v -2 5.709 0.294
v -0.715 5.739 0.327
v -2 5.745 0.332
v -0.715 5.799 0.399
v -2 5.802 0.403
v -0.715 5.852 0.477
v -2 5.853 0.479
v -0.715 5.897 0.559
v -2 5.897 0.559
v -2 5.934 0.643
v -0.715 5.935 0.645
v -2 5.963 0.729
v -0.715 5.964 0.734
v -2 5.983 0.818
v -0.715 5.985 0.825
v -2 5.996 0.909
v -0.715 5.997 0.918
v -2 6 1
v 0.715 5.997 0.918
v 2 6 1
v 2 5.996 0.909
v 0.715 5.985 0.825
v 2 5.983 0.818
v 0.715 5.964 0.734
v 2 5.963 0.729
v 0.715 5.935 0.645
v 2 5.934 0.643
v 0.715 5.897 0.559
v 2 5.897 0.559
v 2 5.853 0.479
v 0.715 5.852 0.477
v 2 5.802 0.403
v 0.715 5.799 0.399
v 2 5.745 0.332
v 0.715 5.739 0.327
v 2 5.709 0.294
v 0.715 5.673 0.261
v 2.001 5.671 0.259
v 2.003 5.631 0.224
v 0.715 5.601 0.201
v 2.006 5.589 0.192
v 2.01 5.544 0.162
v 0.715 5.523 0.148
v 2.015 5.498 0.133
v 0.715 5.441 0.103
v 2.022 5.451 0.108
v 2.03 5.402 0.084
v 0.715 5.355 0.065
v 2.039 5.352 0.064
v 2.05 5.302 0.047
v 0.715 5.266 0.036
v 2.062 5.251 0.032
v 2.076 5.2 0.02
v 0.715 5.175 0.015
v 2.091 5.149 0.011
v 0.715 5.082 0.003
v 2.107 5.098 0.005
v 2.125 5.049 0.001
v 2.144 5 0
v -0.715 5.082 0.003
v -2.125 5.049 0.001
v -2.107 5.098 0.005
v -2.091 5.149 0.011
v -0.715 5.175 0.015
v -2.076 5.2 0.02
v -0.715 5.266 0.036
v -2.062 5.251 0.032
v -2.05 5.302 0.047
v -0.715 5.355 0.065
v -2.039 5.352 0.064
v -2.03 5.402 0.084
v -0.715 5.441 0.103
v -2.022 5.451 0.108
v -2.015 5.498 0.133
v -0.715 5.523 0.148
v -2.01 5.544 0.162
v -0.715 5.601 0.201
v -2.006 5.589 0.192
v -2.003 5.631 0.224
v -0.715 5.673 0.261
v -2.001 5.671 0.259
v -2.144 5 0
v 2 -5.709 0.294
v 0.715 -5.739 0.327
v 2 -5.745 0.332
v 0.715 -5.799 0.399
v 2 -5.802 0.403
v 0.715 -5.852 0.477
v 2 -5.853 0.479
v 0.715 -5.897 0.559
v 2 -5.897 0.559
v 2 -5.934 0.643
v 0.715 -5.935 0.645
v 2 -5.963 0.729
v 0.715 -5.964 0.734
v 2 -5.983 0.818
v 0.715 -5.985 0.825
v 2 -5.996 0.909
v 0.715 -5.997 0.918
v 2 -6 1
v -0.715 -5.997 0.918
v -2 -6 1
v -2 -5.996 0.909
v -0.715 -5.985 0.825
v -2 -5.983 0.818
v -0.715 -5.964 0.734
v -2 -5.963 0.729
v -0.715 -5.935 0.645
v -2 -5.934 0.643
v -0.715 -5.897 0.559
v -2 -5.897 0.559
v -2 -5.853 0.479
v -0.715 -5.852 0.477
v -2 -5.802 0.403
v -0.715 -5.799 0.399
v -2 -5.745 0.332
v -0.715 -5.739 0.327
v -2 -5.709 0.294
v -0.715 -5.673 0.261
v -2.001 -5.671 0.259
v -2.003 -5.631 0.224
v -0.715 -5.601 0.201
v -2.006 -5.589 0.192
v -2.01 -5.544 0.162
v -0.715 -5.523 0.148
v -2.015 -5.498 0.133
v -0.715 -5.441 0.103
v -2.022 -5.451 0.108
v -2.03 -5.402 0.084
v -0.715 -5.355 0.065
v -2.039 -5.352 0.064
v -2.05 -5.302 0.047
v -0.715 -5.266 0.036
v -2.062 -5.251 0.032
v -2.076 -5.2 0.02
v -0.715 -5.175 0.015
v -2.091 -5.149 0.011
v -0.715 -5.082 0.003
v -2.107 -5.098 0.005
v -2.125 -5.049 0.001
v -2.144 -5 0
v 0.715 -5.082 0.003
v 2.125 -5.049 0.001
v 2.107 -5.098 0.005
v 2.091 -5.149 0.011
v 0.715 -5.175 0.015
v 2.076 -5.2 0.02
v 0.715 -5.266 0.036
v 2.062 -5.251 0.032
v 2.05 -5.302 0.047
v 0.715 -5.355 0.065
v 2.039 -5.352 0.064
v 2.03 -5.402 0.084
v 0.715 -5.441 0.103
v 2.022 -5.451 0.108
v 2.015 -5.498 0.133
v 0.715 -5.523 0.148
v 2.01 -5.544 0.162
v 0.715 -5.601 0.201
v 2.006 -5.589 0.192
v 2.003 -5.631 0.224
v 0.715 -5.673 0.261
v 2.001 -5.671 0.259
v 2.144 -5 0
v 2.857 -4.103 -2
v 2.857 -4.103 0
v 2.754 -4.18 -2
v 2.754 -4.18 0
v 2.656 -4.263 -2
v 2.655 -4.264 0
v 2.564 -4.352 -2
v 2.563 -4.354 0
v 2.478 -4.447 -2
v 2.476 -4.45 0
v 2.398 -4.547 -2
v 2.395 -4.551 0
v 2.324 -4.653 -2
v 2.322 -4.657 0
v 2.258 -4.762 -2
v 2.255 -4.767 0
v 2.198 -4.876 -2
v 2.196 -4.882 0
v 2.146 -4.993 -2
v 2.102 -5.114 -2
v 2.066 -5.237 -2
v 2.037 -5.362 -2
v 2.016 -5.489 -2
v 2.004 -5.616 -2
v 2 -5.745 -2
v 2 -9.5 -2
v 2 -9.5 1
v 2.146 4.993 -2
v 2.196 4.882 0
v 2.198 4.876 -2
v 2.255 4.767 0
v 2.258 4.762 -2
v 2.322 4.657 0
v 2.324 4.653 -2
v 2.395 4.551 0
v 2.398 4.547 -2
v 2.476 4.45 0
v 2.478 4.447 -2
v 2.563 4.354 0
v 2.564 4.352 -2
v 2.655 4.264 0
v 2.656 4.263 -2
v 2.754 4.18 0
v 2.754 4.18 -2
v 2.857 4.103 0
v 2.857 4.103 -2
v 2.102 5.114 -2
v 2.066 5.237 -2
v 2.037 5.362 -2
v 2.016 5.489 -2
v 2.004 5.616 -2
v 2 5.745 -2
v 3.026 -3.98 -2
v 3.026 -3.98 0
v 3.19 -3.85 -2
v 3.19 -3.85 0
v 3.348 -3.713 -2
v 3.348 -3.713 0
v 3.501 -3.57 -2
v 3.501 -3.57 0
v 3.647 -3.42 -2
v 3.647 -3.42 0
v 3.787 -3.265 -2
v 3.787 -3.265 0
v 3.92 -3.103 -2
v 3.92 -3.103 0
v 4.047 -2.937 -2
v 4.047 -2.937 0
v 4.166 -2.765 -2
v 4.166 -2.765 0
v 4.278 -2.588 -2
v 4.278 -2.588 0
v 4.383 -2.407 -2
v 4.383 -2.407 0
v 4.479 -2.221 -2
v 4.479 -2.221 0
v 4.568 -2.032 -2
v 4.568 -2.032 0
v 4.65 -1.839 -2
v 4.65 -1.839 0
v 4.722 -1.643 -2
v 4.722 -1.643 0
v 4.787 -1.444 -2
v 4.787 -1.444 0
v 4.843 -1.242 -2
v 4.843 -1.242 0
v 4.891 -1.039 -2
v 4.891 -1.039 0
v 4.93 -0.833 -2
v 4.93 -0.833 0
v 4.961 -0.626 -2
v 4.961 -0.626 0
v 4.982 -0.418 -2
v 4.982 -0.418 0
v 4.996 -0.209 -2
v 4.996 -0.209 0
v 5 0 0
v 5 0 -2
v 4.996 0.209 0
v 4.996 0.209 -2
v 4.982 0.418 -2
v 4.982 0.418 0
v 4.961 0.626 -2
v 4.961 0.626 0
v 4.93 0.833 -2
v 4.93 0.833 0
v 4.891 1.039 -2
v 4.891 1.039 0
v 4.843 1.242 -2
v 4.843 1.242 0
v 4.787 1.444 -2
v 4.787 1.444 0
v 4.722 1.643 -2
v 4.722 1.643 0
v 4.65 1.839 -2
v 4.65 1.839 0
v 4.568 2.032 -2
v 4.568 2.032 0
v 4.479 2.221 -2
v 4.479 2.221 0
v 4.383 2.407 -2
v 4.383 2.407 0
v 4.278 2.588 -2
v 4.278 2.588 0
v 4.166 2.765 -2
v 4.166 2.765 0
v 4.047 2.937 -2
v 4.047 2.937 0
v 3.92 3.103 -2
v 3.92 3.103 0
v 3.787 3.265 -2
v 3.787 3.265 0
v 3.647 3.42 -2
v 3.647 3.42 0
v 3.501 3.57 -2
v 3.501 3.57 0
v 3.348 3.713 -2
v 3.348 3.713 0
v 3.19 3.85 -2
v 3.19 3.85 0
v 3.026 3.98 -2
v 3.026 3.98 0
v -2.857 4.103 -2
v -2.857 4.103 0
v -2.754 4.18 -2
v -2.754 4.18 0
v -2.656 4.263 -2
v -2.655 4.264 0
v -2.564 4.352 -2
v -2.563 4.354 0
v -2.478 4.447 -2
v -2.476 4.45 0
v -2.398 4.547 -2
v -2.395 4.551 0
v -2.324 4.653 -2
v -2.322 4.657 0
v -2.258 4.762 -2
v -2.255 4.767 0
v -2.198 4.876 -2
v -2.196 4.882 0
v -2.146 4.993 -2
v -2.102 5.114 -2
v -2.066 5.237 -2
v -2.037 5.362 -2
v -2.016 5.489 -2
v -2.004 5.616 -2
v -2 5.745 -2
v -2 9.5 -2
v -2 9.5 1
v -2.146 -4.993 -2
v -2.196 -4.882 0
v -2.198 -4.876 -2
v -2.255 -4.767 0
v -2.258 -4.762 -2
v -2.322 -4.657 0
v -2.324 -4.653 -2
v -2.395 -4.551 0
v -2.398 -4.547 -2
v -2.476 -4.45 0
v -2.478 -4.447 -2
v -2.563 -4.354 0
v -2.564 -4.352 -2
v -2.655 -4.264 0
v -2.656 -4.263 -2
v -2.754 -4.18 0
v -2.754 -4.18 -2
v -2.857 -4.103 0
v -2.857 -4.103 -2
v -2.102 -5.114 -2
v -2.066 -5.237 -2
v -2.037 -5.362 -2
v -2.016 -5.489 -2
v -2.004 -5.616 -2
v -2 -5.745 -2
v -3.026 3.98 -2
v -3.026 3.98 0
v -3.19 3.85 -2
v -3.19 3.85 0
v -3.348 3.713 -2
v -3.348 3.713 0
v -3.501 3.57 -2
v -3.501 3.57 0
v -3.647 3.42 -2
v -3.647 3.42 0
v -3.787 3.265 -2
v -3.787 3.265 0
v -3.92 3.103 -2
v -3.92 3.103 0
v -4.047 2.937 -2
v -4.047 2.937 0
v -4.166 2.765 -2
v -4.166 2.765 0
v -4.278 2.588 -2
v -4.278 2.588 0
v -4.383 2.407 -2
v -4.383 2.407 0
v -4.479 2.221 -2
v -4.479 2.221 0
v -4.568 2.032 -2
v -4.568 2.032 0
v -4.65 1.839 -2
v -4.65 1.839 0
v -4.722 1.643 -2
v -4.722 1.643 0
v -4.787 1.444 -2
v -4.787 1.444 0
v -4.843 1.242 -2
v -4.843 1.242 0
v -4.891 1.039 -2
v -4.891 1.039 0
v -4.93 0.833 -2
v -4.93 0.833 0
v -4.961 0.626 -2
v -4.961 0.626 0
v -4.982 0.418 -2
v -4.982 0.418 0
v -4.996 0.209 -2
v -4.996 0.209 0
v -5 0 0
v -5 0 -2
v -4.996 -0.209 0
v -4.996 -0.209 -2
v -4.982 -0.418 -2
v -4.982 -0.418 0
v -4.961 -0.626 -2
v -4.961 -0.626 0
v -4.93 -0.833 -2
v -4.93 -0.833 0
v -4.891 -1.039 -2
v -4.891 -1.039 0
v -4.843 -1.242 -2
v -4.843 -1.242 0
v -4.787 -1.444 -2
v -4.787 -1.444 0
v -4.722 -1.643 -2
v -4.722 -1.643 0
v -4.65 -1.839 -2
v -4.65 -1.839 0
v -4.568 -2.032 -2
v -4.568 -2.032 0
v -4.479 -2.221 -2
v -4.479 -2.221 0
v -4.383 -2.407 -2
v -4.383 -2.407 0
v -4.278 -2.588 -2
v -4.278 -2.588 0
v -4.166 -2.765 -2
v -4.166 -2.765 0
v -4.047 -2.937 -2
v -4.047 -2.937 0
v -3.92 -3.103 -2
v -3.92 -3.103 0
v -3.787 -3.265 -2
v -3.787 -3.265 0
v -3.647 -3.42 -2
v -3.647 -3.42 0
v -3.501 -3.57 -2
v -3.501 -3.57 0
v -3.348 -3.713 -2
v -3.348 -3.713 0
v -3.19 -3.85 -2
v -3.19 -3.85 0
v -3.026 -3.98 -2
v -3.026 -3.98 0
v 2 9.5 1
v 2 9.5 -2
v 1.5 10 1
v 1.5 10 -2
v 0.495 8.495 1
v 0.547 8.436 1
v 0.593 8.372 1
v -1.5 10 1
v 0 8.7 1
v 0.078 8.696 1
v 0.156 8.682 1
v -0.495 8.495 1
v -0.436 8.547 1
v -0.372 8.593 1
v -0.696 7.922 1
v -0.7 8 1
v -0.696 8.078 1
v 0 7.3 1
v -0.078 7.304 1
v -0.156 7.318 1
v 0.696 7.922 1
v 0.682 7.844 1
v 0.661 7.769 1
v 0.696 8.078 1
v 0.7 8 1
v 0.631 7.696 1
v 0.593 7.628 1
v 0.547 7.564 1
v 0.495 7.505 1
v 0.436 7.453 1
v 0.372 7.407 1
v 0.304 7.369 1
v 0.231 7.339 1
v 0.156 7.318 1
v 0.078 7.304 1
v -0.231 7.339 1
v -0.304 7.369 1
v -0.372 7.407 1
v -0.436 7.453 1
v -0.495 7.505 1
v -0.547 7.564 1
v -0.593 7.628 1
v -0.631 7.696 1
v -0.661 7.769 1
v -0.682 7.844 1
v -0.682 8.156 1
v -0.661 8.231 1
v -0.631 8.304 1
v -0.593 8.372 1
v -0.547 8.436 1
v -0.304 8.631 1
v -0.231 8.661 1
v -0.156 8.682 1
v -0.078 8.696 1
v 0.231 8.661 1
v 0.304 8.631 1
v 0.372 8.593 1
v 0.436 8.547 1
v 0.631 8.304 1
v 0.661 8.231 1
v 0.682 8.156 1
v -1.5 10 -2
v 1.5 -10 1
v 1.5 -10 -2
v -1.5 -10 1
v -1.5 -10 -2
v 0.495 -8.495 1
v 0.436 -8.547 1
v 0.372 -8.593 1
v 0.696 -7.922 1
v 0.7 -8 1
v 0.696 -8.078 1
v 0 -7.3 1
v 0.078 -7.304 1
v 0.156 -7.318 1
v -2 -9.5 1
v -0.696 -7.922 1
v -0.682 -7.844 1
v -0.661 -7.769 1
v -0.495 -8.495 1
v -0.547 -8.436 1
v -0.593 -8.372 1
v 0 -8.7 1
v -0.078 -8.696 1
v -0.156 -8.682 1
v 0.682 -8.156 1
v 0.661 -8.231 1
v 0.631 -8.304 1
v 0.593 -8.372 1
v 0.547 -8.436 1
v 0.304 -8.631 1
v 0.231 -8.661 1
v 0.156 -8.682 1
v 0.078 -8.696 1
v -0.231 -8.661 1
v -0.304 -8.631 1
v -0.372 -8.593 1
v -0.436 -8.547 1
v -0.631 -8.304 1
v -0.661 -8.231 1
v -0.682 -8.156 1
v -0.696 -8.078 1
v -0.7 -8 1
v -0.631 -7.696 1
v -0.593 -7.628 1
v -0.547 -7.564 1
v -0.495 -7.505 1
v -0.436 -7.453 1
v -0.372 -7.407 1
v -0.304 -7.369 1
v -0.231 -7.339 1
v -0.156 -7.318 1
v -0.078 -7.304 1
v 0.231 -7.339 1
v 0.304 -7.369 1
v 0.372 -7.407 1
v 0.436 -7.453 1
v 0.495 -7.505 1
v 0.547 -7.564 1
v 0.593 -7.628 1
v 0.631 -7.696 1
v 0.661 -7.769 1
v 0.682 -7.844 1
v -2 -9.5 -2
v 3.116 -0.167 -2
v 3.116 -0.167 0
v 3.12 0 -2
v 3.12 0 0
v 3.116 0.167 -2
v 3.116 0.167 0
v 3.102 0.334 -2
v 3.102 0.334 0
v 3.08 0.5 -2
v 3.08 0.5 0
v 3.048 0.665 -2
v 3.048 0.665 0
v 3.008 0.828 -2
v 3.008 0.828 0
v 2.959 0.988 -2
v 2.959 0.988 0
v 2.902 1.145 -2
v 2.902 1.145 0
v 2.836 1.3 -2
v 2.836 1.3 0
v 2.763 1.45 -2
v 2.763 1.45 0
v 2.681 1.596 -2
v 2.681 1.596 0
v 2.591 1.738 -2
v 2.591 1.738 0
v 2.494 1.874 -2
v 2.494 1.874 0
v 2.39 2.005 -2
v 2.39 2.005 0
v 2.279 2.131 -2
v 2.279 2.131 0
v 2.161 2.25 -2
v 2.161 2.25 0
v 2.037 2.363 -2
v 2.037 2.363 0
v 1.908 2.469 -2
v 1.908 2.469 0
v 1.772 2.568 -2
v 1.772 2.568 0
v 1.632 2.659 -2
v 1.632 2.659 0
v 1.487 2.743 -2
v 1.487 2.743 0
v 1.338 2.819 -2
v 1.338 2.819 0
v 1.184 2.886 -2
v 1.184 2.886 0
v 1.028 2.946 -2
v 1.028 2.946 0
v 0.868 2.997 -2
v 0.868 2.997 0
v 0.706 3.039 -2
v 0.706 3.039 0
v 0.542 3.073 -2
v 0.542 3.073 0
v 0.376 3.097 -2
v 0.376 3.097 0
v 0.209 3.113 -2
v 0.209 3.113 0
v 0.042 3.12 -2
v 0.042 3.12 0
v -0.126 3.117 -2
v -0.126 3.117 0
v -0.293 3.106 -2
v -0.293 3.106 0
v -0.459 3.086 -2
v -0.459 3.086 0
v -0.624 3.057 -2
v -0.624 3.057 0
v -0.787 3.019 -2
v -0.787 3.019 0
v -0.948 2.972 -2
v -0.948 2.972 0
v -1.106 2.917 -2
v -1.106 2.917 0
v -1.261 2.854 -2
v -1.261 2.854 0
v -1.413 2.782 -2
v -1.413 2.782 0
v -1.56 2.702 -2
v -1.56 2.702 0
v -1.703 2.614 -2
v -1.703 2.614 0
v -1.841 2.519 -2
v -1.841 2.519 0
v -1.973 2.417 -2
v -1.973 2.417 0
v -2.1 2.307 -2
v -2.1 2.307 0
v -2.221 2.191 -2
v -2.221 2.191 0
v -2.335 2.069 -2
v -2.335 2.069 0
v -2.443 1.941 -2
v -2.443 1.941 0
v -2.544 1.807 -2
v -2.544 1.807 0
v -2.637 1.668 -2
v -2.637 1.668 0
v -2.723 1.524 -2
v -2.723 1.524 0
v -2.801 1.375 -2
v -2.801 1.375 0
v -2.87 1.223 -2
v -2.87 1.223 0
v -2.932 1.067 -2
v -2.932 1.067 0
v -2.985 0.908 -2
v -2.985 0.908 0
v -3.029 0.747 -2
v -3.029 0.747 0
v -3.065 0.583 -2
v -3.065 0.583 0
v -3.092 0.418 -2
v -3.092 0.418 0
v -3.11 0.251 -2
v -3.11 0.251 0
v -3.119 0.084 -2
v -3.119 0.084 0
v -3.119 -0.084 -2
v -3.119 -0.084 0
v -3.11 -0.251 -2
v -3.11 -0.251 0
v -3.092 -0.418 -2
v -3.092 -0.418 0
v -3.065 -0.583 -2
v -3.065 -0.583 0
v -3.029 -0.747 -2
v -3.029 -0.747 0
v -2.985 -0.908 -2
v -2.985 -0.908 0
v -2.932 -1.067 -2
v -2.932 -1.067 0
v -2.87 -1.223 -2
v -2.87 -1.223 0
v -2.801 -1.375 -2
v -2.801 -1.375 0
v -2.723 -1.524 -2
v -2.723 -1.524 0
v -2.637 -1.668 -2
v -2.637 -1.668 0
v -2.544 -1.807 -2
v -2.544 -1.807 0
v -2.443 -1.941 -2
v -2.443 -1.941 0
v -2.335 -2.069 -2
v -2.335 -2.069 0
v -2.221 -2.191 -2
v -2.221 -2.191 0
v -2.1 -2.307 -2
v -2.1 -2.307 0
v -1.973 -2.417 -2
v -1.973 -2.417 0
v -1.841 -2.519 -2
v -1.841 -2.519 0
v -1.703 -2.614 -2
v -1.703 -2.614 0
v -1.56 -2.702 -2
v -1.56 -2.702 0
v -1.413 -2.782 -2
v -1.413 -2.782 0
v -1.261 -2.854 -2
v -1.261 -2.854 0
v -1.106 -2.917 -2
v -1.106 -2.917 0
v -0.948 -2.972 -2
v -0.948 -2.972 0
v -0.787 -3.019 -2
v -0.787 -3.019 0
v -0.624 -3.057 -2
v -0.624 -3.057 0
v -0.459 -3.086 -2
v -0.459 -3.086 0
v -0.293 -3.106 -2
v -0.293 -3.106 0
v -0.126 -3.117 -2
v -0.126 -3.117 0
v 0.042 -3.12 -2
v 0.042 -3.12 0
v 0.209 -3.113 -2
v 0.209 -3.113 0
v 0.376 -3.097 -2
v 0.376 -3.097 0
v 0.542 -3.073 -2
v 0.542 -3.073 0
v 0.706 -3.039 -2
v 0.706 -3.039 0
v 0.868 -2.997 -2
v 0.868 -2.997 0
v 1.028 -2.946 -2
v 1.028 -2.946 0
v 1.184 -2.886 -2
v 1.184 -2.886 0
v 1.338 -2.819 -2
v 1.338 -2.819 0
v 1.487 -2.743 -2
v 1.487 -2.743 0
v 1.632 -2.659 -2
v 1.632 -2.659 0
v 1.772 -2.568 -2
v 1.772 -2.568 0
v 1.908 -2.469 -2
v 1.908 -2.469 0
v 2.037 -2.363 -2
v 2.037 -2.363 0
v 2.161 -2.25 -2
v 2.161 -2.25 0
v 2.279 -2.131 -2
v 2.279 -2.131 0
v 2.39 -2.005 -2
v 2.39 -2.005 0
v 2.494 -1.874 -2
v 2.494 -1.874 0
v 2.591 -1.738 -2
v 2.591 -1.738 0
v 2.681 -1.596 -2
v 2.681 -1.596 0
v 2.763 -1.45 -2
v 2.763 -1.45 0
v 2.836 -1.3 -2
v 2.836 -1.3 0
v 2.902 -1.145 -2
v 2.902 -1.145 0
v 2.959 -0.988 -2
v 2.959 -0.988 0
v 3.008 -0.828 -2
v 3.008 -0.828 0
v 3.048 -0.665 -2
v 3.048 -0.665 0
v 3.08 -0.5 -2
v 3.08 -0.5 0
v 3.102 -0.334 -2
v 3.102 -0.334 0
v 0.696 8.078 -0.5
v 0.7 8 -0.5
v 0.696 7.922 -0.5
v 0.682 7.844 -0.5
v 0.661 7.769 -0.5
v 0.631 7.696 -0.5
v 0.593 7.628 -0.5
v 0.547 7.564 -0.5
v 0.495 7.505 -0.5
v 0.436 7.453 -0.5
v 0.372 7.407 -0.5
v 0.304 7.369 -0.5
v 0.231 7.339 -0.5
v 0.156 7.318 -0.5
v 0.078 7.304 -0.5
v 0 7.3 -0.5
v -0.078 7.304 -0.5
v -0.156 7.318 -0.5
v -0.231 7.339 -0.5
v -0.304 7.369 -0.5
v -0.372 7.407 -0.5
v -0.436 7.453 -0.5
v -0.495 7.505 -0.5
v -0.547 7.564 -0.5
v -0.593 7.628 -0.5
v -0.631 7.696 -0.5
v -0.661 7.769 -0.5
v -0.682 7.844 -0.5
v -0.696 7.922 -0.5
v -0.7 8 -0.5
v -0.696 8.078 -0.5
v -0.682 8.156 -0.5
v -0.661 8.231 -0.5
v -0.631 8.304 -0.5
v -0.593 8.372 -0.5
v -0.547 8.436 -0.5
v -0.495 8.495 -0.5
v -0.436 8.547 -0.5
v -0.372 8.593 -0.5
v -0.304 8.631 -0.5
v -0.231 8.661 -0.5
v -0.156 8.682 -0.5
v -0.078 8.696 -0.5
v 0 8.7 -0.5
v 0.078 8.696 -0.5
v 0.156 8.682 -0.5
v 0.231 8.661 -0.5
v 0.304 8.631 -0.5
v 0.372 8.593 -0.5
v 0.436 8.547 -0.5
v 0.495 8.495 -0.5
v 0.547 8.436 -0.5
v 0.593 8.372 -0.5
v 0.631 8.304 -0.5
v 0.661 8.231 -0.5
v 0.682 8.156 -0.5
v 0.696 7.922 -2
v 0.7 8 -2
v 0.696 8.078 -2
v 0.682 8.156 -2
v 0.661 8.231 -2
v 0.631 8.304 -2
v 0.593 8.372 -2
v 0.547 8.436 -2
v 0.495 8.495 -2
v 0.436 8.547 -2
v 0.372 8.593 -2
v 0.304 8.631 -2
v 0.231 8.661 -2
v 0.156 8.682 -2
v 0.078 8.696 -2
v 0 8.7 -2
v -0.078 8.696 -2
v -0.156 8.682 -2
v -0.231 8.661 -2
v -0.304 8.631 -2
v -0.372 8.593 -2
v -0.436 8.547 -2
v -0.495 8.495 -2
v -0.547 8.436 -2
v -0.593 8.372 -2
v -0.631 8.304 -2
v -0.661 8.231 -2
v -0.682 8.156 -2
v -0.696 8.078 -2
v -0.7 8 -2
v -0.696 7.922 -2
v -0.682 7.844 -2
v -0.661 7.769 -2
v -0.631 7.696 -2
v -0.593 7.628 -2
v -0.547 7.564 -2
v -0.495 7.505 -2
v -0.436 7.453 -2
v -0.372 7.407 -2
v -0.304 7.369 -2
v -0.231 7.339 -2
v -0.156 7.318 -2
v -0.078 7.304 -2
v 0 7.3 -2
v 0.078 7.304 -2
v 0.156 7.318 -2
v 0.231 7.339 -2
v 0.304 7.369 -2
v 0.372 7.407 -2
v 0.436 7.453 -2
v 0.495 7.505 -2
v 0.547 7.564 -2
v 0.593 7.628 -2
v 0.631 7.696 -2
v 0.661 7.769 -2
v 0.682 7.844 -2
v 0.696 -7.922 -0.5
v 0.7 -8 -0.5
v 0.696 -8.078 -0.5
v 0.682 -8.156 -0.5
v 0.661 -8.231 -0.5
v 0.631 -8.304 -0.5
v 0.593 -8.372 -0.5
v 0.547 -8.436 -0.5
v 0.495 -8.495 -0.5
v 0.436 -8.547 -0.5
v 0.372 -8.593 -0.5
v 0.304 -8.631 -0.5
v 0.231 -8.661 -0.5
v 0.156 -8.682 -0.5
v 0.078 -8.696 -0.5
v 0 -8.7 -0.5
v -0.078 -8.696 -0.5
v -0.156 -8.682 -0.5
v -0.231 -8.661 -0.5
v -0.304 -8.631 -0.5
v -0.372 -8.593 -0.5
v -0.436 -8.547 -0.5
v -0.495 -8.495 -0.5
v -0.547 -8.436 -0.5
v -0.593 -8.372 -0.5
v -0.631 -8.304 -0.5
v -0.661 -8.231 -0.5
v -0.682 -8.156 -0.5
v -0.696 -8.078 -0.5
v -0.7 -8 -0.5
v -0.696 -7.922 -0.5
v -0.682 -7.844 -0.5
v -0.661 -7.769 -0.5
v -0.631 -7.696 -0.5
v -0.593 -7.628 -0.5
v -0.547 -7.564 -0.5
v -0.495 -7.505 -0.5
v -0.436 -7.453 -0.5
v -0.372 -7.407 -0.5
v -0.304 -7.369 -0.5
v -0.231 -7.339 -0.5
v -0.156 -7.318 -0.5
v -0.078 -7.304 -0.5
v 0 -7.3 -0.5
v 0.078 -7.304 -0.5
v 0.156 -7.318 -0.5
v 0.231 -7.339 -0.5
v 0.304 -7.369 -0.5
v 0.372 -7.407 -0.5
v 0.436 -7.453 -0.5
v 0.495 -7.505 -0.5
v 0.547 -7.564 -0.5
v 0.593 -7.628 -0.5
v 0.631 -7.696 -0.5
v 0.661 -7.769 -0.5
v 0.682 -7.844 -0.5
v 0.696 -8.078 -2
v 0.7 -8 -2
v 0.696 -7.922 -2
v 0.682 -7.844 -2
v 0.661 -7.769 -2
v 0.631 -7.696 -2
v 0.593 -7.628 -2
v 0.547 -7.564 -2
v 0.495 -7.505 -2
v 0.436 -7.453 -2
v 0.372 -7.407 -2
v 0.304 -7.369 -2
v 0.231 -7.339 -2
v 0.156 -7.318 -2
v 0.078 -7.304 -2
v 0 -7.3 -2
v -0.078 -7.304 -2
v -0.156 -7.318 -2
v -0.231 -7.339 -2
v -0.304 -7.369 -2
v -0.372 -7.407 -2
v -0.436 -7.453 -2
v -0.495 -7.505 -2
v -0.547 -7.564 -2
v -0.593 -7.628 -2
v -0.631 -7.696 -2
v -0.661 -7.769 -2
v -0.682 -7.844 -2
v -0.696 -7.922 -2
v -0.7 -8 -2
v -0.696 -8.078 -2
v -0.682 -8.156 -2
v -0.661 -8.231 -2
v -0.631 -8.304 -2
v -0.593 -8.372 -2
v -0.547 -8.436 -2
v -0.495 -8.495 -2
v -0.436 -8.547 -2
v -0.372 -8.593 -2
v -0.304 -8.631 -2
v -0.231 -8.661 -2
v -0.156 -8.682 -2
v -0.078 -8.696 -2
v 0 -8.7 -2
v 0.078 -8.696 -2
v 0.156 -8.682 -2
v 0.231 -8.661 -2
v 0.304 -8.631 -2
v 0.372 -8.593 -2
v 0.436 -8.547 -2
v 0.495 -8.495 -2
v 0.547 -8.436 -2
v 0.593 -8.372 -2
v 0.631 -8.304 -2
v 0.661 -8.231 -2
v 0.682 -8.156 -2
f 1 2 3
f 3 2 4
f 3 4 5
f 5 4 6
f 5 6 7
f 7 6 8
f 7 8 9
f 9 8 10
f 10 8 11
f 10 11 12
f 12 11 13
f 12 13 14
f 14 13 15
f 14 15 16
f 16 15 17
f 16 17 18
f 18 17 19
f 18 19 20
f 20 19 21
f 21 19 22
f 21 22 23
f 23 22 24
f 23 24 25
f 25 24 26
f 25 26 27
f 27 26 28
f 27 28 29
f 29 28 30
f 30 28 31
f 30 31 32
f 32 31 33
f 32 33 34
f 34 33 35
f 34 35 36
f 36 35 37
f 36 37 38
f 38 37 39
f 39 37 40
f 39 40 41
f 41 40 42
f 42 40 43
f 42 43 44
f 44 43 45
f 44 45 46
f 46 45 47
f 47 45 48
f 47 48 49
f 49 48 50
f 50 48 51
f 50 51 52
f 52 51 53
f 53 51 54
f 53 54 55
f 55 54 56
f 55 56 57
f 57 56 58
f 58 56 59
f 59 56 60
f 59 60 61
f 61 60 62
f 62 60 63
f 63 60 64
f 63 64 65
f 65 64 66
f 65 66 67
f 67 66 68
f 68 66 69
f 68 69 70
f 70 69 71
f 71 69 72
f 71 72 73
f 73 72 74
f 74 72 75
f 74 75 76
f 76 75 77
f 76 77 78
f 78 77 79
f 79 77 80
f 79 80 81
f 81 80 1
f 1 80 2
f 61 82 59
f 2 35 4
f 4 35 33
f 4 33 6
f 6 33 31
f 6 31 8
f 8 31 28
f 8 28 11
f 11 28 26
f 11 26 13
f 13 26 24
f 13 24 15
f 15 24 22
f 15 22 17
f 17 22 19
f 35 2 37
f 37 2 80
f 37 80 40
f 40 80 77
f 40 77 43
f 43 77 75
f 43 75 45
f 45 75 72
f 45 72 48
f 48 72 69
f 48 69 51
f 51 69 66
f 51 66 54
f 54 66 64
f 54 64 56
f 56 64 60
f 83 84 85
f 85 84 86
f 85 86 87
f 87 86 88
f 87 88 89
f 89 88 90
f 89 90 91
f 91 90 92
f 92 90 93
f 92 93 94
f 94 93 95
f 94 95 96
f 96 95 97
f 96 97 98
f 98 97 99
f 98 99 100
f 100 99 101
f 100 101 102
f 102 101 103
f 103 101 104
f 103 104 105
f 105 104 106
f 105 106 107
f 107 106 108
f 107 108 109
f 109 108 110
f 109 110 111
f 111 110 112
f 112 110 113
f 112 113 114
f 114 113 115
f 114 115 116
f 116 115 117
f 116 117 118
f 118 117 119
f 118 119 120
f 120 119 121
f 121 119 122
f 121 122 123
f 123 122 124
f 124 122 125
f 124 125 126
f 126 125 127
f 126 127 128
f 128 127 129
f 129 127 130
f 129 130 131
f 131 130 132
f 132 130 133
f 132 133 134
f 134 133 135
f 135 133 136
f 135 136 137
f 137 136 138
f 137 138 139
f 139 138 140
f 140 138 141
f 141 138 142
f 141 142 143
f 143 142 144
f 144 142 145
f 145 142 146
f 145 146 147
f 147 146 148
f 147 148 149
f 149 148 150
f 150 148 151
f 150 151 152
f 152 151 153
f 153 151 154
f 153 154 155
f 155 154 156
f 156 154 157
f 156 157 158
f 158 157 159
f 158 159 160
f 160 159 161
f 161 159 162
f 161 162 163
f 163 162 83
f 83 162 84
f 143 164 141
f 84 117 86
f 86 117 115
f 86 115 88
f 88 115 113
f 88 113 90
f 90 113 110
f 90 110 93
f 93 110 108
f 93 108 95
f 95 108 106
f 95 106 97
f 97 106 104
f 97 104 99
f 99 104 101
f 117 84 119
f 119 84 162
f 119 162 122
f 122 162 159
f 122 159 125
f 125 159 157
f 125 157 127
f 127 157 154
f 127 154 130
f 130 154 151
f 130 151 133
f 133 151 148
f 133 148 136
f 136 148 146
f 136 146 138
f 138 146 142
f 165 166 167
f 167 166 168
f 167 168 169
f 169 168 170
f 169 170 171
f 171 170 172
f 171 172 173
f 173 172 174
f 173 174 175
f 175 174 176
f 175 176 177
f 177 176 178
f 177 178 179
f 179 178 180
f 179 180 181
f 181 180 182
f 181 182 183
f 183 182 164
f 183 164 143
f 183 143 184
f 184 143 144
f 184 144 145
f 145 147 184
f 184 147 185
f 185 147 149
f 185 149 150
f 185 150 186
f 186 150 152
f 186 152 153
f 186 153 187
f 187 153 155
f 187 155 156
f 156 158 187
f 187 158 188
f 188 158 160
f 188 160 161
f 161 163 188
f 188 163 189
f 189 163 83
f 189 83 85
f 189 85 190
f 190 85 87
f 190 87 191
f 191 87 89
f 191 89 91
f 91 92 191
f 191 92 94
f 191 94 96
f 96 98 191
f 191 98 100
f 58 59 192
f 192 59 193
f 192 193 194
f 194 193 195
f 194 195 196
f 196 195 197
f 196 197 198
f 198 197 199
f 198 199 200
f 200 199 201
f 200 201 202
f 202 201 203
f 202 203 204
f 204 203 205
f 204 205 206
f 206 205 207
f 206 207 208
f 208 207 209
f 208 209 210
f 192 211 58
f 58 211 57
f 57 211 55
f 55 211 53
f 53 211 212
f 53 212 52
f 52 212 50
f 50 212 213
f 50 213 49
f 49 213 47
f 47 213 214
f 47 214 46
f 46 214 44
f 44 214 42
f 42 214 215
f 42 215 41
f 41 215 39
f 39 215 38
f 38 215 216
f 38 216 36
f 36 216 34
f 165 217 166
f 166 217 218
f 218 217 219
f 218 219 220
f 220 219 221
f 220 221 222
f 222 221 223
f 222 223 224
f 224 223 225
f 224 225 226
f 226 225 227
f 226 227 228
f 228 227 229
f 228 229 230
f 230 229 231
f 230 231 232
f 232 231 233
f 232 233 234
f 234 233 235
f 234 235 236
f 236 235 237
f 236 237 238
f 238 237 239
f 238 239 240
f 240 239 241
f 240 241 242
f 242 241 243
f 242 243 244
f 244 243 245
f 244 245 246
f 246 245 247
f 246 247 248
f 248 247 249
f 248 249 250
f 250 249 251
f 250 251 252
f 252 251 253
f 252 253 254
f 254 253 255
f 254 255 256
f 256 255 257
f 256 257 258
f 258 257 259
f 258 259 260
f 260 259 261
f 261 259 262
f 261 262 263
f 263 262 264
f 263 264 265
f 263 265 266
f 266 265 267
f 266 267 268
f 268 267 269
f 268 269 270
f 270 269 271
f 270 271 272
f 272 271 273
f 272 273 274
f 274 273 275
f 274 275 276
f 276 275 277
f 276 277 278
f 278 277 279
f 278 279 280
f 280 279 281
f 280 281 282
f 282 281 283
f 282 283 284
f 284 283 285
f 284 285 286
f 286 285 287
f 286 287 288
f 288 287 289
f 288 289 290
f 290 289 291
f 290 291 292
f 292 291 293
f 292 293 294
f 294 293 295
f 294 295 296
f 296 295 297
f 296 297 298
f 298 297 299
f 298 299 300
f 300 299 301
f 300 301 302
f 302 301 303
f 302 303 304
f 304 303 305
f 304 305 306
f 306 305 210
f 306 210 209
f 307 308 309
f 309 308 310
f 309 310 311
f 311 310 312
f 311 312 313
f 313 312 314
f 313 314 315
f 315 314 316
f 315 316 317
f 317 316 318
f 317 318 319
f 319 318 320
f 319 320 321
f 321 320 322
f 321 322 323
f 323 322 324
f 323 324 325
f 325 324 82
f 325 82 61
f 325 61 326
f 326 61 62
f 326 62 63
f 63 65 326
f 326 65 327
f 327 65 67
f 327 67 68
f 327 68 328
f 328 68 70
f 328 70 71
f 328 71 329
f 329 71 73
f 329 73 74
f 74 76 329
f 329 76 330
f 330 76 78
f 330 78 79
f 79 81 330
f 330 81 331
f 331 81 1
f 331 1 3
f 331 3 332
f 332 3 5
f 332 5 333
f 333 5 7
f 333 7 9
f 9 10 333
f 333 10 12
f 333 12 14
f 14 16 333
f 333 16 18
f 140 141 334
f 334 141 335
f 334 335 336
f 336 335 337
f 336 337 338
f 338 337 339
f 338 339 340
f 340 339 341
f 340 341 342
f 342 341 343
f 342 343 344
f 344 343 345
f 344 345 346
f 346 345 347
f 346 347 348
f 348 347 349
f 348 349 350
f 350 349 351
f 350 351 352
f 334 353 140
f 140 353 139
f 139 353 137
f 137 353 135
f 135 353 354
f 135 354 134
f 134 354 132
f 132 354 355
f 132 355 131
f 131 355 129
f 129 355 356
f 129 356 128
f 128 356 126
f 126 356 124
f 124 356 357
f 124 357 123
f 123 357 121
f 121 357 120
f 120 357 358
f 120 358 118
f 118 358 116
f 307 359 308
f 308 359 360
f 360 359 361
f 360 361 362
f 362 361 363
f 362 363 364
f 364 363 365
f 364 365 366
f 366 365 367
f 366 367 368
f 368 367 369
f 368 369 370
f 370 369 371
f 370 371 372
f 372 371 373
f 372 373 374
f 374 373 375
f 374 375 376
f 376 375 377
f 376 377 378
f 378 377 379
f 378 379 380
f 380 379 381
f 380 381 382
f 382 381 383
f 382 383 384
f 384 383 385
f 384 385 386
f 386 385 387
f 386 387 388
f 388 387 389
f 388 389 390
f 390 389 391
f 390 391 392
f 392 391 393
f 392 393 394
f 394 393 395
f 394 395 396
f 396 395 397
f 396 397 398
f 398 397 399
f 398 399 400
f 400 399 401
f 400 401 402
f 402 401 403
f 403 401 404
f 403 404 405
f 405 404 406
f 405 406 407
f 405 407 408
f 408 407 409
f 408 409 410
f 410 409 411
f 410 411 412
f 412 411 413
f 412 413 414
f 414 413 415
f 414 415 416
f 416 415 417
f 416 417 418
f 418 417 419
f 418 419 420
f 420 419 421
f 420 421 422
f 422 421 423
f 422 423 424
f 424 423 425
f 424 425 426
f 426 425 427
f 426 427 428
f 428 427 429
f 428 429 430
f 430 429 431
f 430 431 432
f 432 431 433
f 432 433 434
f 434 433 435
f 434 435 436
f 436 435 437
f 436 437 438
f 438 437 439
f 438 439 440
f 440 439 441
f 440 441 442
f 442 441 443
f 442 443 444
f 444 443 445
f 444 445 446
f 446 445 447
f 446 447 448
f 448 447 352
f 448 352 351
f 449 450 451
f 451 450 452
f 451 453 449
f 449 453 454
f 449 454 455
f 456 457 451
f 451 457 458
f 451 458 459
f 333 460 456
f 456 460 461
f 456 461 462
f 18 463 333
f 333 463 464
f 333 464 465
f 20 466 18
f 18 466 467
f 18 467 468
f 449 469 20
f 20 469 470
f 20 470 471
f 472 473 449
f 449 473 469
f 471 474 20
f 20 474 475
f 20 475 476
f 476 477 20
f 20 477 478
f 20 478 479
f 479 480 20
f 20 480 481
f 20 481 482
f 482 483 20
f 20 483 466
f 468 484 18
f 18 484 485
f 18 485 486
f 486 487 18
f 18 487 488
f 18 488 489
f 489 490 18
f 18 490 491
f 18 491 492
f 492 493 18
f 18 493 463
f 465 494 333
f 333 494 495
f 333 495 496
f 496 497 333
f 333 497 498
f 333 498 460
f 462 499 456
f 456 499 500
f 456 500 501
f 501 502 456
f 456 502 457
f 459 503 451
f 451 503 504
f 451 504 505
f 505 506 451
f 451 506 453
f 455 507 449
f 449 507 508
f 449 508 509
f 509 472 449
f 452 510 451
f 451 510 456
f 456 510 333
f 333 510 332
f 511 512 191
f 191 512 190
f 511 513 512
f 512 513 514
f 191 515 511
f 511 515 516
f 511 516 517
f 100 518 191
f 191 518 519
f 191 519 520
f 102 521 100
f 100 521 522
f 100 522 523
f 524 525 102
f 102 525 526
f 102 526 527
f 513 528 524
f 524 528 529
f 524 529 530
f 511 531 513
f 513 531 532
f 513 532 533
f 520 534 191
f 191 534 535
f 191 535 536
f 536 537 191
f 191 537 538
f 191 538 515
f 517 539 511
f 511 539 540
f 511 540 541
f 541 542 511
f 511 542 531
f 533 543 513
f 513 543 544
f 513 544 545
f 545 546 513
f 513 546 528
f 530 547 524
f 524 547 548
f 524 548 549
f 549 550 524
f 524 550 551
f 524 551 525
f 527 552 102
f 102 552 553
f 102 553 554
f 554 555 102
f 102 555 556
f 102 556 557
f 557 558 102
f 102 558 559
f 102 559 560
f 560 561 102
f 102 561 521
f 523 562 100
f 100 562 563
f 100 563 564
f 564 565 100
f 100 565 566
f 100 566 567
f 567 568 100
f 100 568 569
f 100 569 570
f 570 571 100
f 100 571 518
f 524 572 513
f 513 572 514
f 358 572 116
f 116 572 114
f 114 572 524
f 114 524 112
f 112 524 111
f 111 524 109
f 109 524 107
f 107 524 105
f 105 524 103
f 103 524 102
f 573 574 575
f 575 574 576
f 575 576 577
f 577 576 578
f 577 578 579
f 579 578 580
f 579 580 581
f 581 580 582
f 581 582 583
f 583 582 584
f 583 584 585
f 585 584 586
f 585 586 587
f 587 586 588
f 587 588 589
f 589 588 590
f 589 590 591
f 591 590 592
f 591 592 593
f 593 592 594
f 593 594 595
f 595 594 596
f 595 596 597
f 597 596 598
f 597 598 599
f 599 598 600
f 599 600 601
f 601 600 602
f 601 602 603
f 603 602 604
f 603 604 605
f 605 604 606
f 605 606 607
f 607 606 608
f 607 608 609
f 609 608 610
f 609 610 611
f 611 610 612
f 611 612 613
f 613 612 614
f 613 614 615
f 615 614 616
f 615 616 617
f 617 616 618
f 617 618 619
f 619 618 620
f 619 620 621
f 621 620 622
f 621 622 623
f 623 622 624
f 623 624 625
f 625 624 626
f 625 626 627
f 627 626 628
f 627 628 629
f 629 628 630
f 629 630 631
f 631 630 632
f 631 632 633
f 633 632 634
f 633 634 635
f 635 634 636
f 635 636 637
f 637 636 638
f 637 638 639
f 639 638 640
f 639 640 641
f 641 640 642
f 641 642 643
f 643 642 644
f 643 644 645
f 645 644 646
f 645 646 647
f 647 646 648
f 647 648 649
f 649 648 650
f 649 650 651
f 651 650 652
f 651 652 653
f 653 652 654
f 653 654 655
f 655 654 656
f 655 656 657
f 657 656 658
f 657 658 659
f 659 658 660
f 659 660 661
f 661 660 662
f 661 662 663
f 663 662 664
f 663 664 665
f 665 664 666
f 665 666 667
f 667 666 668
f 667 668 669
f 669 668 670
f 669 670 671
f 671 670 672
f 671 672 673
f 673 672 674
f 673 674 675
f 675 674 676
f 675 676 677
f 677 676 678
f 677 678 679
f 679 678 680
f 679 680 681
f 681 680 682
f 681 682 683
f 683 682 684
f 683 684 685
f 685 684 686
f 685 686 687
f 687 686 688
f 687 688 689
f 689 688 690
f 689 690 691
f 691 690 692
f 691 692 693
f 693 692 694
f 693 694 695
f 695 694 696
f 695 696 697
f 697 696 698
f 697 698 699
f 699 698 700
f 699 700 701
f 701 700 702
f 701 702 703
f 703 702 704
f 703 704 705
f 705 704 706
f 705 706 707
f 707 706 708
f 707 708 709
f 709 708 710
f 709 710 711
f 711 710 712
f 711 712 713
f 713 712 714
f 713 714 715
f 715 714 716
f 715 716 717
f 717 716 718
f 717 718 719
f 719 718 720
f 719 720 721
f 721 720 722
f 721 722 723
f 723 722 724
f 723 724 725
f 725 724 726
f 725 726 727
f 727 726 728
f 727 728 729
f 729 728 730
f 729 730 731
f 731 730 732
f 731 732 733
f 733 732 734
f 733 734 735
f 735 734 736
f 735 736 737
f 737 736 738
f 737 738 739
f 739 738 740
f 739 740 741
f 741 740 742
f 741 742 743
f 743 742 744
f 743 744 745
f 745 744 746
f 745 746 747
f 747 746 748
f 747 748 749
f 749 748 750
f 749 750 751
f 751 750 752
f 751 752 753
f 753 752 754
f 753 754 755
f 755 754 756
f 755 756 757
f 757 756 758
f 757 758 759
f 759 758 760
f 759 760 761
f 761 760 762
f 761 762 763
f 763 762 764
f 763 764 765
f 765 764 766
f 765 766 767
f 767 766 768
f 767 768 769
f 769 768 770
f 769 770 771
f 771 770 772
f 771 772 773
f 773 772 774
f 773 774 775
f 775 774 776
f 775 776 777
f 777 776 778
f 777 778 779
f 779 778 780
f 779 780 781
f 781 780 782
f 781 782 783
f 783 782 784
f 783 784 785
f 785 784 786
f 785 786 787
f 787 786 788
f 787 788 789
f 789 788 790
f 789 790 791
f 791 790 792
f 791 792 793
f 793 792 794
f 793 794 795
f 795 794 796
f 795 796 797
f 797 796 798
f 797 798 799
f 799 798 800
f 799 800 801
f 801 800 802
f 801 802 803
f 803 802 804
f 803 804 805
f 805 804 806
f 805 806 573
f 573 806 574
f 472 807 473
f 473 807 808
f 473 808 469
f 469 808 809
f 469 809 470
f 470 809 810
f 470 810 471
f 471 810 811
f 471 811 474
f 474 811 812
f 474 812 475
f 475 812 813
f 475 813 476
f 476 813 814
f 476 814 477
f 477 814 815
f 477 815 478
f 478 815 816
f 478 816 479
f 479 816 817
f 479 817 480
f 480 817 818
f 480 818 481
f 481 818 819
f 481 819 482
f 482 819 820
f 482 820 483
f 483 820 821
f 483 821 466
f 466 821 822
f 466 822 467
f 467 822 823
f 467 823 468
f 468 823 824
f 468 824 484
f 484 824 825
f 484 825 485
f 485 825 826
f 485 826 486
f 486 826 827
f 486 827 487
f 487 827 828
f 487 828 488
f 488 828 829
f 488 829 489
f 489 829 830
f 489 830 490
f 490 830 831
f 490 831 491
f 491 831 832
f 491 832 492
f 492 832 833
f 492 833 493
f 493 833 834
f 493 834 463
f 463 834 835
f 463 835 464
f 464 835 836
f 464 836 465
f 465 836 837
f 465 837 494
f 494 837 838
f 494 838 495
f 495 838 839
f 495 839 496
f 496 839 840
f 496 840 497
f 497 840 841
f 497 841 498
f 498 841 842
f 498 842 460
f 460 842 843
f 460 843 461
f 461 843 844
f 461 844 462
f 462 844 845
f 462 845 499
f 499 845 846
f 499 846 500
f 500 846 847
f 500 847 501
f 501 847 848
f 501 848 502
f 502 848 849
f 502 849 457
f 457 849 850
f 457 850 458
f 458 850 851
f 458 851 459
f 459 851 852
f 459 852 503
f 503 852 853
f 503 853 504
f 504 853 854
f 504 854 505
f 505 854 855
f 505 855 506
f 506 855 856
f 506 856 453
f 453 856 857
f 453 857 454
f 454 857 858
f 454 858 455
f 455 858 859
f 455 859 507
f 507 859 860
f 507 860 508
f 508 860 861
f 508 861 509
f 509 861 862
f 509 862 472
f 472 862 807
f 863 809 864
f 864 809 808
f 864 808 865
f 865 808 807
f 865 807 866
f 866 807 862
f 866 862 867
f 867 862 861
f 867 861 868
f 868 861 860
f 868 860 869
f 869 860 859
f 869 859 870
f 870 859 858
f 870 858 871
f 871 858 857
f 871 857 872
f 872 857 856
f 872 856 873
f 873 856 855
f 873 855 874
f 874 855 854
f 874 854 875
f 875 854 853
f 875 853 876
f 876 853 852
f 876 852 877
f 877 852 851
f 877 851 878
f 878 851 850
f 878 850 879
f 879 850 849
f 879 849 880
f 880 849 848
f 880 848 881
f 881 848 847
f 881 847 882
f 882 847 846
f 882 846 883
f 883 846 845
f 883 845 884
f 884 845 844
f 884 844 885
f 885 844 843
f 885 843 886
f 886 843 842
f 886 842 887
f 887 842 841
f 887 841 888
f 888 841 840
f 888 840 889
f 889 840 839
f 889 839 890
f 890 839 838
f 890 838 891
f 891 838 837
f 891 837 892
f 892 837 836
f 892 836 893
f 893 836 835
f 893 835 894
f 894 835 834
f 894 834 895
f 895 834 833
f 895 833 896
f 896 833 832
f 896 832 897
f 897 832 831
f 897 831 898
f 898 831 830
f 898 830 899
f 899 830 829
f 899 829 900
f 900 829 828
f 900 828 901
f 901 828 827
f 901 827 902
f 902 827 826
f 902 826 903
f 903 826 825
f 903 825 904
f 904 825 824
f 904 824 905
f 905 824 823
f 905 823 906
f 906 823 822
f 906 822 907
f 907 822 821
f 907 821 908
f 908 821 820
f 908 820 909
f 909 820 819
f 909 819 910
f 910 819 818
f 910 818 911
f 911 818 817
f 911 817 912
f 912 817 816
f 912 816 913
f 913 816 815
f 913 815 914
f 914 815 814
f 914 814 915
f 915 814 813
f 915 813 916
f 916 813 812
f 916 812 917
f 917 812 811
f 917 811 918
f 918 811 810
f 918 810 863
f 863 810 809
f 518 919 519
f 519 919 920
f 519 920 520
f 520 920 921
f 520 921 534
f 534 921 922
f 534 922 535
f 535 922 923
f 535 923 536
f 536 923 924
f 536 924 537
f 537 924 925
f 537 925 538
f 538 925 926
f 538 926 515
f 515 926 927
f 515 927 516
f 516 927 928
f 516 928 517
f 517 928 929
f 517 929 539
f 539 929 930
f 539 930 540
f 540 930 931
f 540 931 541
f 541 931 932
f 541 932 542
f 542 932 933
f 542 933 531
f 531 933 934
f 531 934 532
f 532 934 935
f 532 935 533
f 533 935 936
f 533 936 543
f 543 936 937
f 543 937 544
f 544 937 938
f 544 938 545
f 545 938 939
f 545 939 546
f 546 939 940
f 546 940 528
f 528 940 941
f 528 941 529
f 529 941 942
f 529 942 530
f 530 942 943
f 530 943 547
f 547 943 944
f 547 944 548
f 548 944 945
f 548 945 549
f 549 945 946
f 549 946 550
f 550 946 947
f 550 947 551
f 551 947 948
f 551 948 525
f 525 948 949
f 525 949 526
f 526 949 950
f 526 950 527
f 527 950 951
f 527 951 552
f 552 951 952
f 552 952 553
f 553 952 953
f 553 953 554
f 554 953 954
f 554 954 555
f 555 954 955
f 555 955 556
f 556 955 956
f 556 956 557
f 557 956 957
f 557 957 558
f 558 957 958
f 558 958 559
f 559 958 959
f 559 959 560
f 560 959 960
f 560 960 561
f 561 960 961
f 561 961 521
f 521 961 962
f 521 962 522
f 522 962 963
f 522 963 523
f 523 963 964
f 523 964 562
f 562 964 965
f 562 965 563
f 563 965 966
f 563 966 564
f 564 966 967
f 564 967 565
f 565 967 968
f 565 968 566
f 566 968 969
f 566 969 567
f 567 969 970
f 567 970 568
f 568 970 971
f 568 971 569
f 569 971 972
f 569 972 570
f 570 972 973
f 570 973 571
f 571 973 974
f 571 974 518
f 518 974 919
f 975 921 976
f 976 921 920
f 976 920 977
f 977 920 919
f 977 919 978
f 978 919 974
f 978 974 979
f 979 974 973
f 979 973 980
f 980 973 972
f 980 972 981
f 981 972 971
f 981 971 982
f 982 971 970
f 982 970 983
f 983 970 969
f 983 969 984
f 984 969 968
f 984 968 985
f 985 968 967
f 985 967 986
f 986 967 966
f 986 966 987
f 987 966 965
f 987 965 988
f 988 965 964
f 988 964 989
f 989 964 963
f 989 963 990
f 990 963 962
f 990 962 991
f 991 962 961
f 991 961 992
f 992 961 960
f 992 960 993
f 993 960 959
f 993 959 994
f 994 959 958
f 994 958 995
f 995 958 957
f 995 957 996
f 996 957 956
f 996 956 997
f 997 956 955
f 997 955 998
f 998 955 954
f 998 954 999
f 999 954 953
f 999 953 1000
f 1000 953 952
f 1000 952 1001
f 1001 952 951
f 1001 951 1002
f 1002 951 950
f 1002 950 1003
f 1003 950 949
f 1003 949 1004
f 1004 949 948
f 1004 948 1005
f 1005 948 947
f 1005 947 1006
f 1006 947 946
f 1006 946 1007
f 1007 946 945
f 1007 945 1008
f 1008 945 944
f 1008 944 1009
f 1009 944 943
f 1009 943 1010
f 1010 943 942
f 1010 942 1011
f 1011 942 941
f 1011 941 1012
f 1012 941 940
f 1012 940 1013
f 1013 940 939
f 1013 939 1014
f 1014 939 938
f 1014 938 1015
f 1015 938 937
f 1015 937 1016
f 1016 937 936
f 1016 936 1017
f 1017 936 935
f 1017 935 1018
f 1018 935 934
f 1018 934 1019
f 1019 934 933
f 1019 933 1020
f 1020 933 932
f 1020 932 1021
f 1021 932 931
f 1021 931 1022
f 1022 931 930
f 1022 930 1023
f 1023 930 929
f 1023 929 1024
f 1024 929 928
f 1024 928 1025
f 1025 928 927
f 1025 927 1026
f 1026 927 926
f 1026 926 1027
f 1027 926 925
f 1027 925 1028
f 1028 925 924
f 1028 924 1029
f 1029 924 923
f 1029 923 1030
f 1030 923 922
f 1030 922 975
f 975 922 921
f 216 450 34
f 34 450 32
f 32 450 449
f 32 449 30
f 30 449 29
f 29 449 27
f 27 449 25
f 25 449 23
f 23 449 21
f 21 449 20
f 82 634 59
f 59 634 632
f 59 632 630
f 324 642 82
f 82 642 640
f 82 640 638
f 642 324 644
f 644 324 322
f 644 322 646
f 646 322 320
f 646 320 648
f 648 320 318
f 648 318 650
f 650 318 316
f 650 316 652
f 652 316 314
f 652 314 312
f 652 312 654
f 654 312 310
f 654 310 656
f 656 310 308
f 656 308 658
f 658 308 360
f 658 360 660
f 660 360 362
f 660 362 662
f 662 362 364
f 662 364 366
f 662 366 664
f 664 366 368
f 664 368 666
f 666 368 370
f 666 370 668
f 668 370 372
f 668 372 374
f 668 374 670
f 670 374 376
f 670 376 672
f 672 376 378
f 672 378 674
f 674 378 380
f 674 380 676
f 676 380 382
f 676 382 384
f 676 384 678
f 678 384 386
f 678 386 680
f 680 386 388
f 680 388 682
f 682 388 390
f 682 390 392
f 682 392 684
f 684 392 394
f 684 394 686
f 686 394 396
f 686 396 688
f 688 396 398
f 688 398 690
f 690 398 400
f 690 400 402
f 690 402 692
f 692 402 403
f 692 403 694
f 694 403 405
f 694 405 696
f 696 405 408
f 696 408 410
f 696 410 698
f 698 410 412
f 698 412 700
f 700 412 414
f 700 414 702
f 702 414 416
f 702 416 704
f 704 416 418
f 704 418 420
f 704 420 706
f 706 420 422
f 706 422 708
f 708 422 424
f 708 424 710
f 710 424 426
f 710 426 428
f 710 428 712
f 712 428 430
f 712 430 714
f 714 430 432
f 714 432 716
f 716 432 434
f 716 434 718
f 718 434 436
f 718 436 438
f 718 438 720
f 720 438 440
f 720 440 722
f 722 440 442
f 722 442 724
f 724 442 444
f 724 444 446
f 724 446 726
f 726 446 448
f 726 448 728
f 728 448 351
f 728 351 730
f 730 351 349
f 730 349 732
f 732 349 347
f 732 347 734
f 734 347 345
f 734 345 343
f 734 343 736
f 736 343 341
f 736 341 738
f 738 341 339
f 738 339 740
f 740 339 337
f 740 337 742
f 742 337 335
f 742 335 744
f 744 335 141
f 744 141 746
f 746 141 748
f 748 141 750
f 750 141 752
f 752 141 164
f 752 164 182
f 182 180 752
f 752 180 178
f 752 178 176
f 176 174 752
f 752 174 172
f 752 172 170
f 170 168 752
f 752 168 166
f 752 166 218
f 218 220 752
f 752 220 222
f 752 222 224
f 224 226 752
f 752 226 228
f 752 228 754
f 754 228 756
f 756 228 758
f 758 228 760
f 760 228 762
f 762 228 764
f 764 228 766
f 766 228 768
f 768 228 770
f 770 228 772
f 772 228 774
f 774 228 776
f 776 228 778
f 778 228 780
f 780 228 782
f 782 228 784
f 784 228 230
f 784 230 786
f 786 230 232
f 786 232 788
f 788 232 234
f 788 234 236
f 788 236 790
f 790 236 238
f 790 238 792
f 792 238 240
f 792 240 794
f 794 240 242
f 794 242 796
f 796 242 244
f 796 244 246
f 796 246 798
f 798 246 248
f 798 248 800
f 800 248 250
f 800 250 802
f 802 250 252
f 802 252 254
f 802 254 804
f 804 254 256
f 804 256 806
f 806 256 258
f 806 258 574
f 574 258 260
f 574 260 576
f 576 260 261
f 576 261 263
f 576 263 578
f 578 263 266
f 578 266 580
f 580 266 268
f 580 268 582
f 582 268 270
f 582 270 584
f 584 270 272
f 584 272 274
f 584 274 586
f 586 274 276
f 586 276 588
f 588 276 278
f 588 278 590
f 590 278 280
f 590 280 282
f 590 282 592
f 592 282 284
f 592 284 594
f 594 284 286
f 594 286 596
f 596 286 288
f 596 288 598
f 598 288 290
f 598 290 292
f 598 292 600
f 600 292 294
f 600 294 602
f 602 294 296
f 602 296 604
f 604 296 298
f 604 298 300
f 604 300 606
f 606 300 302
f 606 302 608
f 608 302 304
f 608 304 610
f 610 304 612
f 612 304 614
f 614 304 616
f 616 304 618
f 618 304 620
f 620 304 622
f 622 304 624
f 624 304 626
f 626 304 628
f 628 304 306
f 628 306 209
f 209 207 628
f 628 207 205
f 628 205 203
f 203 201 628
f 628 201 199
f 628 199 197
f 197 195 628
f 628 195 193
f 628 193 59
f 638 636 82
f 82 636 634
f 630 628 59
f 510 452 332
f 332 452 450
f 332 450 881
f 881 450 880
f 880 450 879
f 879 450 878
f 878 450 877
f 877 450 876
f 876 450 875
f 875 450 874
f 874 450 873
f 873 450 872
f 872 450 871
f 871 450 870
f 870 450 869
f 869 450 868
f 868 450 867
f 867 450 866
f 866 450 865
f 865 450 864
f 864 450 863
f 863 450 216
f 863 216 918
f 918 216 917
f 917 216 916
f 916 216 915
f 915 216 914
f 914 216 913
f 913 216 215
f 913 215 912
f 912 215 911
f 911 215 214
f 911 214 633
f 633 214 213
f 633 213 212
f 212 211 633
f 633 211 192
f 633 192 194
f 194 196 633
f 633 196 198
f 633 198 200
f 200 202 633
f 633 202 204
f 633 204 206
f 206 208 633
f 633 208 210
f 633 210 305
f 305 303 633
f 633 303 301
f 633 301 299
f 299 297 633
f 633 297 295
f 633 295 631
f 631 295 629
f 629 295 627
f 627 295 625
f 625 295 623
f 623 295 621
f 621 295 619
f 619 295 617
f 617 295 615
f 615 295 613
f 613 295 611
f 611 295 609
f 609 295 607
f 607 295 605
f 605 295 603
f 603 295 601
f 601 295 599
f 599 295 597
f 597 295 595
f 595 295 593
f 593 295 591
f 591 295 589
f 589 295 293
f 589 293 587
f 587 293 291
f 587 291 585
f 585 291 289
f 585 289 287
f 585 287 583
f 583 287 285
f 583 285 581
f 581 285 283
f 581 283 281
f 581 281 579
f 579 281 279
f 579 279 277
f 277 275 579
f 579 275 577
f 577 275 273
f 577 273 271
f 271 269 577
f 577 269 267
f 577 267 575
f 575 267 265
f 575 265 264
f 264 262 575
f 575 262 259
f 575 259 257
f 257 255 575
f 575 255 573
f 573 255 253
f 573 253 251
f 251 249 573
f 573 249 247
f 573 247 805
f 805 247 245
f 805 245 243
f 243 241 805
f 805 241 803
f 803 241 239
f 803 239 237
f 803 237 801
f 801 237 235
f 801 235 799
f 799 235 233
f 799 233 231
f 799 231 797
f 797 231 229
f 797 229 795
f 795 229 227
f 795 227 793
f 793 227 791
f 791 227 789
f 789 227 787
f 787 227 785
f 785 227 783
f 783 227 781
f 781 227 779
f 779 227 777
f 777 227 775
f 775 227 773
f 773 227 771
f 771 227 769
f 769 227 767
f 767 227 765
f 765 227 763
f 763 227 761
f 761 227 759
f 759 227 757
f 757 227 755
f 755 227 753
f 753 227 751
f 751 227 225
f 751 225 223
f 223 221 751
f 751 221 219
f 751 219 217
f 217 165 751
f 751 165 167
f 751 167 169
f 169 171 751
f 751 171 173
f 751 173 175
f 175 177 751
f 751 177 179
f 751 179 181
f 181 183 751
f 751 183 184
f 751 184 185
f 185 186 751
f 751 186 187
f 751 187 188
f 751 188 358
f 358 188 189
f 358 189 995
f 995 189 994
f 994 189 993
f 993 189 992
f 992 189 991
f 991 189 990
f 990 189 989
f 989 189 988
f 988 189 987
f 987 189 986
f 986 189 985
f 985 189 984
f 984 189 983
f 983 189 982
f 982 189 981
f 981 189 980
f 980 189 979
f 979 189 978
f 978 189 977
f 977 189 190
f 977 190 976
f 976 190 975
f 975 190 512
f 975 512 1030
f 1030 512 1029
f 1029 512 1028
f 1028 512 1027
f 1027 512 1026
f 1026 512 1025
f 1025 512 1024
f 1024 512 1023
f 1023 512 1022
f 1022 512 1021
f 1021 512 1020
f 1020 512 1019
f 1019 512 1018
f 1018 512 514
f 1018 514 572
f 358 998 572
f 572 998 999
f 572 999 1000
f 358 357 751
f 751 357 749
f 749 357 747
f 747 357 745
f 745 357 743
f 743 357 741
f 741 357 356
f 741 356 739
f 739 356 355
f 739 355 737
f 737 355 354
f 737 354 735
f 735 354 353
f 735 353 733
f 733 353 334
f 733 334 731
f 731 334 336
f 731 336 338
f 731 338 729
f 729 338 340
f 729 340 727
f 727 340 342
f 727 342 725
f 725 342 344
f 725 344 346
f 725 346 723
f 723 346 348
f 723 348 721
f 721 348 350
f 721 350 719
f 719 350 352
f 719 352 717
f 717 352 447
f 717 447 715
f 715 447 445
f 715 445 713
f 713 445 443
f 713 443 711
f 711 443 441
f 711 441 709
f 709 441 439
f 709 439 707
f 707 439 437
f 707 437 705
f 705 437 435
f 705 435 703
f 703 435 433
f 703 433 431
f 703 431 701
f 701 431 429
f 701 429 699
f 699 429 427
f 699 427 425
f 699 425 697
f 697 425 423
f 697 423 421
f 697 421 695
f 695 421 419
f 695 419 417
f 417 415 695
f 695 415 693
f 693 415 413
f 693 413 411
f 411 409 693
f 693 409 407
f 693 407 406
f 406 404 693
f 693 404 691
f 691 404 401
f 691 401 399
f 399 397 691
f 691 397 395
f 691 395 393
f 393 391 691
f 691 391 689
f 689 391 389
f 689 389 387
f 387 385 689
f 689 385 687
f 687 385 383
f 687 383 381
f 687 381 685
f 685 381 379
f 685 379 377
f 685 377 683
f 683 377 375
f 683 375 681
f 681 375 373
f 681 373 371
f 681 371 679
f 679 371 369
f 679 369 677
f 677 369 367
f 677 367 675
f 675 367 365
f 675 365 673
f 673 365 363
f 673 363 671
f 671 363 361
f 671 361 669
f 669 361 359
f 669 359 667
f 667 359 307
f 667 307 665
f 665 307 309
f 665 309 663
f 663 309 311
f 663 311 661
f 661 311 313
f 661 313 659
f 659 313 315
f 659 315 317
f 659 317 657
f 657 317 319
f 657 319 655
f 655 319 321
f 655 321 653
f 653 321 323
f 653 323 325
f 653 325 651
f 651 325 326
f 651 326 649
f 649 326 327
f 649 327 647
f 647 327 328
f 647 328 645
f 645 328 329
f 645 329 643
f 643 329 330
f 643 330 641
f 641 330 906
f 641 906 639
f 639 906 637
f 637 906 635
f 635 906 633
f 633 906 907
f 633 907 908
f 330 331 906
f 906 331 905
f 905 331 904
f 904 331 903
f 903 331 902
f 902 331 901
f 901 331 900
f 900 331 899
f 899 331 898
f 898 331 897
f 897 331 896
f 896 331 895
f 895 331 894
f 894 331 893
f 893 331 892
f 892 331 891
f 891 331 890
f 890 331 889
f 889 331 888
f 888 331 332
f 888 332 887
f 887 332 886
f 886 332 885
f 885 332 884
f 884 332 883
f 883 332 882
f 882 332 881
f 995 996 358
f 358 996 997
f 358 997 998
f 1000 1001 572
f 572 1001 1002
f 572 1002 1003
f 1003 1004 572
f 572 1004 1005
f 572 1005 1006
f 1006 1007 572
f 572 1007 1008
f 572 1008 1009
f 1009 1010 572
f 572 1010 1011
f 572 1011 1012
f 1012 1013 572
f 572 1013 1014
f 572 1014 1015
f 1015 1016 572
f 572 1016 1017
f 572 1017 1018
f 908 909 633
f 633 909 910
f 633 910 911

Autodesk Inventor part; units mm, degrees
ref_plane "YZ Plane" through (0, 0, 0) normal (1, 0, 0) x (0, 1, 0)
ref_plane "XZ Plane" through (0, 0, 0) normal (0, 1, 0) x (-1, 0, 0)
ref_plane "XY Plane" through (0, 0, 0) normal (0, 0, 1) x (1, 0, 0)
sketch "Sketch1" plane through (0, 0, 0) normal (0, 0, 1) x (1, 0, 0)
  circle A0 centre (0, 0) radius 3 projected
  circle A1 centre (0, 0) radius 3
  circle A2 centre (0, 0) radius 5
  line L0 (0, 0) -> (0, 8)
  circle A3 centre (0, 8) radius 0.7
  line L1 (0, 0) -> (0, -8)
  circle A4 centre (0, -8) radius 0.7
  line L2 (-2, -10) -> (2, -10)
  line L3 (2, -10) -> (2, 10)
  line L4 (2, 10) -> (-2, 10)
  line L5 (-2, 10) -> (-2, -10)
  line L6 (-2, -10) -> (2, 10) construction
  line L7 (2, -10) -> (-2, 10) construction
  point P0 (-2, -4.5826)
  point P1 (2, -4.5826)
  point P2 (2, 4.5826)
  point P3 (-2, 4.5826)
  dimension "d0" = 6
  dimension "d1" = 10
  dimension "d2" = 8
  dimension "d3" = 1.4
  dimension "d4" = 8
  dimension "d5" = 1.4
  dimension "d6" = 4
  dimension "d7" = 20
extrude "Extrusion1" add sketch "Sketch1" against normal blind 2 contours A0 L3 A2 | A0 L0 A2 L3 | L3 A2 L1 A0 | A0 L5 A2 L0 | A2 L5 L4 L3 | L1 A2 L5 A0 | L3 L2 L5 A2 | A0 L5 A2
sketch "Sketch2" plane through (0, 0, 0) normal (0, 0, 1) x (1, 0, 0)
  arc A0 (-2, 4.5826) -> (-2, -4.5826) centre (0, 0) ccw projected
  line L0 (-2, -4.5826) -> (-2, -10) projected
  line L1 (-2, -10) -> (2, -10) projected
  line L2 (2, -10) -> (2, -4.5826) projected
  arc A1 (2, -4.5826) -> (2, 4.5826) centre (0, 0) ccw projected
  line L3 (2, 4.5826) -> (2, 10) projected
  line L4 (2, 10) -> (-2, 10) projected
  line L5 (-2, 10) -> (-2, 4.5826) projected
  circle A2 centre (0, -8) radius 0.7 projected
  circle A3 centre (0, 8) radius 0.7 projected
  circle A4 centre (0, 0) radius 3 projected
  line L6 (-2, -10) -> (-2, -4.5826) projected
  line L7 (-2, -10) -> (-2, -6)
  line L8 (-2, -6) -> (2, -6)
  line L9 (2, -10) -> (2, -4.5826) projected
  line L10 (-2, 10) -> (-2, 4.5826) projected
  line L11 (-2, 10) -> (-2, 6)
  line L12 (-2, 6) -> (2, 6)
  line L13 (2, 10) -> (2, 4.5826) projected
  point P0 (2, 6)
  dimension "d10" = 4
  dimension "d11" = 4
extrude "Extrusion2" add sketch "Sketch2" along normal blind 1 contours L5 L4 L3 L12 | L8 L2 L1 L0
ref_plane "Work Plane1" through (0, -10, -2) normal (1, 0, 0) x (0, 0, -1)
chamfer "Chamfer1" distance 0.5 angle 45 4 edges at (-2, -10, -0.5) (2, -10, -0.5) (-2, 10, -0.5) (2, 10, -0.5)
fillet "Fillet1" radius 2 4 edges at (-2, -4.5826, -1) (-2, 4.5826, -1) (2, 4.5826, -1) (2, -4.5826, -1)
fillet "Fillet2" radius 1 2 edges at (0, -6, 0) (0, 6, 0)
thicken "Thicken1" operation add thickness 0.12 both sides no extend neighbours yes toward (0.9967573, -0.0804666, 0) faces at (2.9903, -0.2414, -1.3333)
properties part number "bearing_hh_1"
